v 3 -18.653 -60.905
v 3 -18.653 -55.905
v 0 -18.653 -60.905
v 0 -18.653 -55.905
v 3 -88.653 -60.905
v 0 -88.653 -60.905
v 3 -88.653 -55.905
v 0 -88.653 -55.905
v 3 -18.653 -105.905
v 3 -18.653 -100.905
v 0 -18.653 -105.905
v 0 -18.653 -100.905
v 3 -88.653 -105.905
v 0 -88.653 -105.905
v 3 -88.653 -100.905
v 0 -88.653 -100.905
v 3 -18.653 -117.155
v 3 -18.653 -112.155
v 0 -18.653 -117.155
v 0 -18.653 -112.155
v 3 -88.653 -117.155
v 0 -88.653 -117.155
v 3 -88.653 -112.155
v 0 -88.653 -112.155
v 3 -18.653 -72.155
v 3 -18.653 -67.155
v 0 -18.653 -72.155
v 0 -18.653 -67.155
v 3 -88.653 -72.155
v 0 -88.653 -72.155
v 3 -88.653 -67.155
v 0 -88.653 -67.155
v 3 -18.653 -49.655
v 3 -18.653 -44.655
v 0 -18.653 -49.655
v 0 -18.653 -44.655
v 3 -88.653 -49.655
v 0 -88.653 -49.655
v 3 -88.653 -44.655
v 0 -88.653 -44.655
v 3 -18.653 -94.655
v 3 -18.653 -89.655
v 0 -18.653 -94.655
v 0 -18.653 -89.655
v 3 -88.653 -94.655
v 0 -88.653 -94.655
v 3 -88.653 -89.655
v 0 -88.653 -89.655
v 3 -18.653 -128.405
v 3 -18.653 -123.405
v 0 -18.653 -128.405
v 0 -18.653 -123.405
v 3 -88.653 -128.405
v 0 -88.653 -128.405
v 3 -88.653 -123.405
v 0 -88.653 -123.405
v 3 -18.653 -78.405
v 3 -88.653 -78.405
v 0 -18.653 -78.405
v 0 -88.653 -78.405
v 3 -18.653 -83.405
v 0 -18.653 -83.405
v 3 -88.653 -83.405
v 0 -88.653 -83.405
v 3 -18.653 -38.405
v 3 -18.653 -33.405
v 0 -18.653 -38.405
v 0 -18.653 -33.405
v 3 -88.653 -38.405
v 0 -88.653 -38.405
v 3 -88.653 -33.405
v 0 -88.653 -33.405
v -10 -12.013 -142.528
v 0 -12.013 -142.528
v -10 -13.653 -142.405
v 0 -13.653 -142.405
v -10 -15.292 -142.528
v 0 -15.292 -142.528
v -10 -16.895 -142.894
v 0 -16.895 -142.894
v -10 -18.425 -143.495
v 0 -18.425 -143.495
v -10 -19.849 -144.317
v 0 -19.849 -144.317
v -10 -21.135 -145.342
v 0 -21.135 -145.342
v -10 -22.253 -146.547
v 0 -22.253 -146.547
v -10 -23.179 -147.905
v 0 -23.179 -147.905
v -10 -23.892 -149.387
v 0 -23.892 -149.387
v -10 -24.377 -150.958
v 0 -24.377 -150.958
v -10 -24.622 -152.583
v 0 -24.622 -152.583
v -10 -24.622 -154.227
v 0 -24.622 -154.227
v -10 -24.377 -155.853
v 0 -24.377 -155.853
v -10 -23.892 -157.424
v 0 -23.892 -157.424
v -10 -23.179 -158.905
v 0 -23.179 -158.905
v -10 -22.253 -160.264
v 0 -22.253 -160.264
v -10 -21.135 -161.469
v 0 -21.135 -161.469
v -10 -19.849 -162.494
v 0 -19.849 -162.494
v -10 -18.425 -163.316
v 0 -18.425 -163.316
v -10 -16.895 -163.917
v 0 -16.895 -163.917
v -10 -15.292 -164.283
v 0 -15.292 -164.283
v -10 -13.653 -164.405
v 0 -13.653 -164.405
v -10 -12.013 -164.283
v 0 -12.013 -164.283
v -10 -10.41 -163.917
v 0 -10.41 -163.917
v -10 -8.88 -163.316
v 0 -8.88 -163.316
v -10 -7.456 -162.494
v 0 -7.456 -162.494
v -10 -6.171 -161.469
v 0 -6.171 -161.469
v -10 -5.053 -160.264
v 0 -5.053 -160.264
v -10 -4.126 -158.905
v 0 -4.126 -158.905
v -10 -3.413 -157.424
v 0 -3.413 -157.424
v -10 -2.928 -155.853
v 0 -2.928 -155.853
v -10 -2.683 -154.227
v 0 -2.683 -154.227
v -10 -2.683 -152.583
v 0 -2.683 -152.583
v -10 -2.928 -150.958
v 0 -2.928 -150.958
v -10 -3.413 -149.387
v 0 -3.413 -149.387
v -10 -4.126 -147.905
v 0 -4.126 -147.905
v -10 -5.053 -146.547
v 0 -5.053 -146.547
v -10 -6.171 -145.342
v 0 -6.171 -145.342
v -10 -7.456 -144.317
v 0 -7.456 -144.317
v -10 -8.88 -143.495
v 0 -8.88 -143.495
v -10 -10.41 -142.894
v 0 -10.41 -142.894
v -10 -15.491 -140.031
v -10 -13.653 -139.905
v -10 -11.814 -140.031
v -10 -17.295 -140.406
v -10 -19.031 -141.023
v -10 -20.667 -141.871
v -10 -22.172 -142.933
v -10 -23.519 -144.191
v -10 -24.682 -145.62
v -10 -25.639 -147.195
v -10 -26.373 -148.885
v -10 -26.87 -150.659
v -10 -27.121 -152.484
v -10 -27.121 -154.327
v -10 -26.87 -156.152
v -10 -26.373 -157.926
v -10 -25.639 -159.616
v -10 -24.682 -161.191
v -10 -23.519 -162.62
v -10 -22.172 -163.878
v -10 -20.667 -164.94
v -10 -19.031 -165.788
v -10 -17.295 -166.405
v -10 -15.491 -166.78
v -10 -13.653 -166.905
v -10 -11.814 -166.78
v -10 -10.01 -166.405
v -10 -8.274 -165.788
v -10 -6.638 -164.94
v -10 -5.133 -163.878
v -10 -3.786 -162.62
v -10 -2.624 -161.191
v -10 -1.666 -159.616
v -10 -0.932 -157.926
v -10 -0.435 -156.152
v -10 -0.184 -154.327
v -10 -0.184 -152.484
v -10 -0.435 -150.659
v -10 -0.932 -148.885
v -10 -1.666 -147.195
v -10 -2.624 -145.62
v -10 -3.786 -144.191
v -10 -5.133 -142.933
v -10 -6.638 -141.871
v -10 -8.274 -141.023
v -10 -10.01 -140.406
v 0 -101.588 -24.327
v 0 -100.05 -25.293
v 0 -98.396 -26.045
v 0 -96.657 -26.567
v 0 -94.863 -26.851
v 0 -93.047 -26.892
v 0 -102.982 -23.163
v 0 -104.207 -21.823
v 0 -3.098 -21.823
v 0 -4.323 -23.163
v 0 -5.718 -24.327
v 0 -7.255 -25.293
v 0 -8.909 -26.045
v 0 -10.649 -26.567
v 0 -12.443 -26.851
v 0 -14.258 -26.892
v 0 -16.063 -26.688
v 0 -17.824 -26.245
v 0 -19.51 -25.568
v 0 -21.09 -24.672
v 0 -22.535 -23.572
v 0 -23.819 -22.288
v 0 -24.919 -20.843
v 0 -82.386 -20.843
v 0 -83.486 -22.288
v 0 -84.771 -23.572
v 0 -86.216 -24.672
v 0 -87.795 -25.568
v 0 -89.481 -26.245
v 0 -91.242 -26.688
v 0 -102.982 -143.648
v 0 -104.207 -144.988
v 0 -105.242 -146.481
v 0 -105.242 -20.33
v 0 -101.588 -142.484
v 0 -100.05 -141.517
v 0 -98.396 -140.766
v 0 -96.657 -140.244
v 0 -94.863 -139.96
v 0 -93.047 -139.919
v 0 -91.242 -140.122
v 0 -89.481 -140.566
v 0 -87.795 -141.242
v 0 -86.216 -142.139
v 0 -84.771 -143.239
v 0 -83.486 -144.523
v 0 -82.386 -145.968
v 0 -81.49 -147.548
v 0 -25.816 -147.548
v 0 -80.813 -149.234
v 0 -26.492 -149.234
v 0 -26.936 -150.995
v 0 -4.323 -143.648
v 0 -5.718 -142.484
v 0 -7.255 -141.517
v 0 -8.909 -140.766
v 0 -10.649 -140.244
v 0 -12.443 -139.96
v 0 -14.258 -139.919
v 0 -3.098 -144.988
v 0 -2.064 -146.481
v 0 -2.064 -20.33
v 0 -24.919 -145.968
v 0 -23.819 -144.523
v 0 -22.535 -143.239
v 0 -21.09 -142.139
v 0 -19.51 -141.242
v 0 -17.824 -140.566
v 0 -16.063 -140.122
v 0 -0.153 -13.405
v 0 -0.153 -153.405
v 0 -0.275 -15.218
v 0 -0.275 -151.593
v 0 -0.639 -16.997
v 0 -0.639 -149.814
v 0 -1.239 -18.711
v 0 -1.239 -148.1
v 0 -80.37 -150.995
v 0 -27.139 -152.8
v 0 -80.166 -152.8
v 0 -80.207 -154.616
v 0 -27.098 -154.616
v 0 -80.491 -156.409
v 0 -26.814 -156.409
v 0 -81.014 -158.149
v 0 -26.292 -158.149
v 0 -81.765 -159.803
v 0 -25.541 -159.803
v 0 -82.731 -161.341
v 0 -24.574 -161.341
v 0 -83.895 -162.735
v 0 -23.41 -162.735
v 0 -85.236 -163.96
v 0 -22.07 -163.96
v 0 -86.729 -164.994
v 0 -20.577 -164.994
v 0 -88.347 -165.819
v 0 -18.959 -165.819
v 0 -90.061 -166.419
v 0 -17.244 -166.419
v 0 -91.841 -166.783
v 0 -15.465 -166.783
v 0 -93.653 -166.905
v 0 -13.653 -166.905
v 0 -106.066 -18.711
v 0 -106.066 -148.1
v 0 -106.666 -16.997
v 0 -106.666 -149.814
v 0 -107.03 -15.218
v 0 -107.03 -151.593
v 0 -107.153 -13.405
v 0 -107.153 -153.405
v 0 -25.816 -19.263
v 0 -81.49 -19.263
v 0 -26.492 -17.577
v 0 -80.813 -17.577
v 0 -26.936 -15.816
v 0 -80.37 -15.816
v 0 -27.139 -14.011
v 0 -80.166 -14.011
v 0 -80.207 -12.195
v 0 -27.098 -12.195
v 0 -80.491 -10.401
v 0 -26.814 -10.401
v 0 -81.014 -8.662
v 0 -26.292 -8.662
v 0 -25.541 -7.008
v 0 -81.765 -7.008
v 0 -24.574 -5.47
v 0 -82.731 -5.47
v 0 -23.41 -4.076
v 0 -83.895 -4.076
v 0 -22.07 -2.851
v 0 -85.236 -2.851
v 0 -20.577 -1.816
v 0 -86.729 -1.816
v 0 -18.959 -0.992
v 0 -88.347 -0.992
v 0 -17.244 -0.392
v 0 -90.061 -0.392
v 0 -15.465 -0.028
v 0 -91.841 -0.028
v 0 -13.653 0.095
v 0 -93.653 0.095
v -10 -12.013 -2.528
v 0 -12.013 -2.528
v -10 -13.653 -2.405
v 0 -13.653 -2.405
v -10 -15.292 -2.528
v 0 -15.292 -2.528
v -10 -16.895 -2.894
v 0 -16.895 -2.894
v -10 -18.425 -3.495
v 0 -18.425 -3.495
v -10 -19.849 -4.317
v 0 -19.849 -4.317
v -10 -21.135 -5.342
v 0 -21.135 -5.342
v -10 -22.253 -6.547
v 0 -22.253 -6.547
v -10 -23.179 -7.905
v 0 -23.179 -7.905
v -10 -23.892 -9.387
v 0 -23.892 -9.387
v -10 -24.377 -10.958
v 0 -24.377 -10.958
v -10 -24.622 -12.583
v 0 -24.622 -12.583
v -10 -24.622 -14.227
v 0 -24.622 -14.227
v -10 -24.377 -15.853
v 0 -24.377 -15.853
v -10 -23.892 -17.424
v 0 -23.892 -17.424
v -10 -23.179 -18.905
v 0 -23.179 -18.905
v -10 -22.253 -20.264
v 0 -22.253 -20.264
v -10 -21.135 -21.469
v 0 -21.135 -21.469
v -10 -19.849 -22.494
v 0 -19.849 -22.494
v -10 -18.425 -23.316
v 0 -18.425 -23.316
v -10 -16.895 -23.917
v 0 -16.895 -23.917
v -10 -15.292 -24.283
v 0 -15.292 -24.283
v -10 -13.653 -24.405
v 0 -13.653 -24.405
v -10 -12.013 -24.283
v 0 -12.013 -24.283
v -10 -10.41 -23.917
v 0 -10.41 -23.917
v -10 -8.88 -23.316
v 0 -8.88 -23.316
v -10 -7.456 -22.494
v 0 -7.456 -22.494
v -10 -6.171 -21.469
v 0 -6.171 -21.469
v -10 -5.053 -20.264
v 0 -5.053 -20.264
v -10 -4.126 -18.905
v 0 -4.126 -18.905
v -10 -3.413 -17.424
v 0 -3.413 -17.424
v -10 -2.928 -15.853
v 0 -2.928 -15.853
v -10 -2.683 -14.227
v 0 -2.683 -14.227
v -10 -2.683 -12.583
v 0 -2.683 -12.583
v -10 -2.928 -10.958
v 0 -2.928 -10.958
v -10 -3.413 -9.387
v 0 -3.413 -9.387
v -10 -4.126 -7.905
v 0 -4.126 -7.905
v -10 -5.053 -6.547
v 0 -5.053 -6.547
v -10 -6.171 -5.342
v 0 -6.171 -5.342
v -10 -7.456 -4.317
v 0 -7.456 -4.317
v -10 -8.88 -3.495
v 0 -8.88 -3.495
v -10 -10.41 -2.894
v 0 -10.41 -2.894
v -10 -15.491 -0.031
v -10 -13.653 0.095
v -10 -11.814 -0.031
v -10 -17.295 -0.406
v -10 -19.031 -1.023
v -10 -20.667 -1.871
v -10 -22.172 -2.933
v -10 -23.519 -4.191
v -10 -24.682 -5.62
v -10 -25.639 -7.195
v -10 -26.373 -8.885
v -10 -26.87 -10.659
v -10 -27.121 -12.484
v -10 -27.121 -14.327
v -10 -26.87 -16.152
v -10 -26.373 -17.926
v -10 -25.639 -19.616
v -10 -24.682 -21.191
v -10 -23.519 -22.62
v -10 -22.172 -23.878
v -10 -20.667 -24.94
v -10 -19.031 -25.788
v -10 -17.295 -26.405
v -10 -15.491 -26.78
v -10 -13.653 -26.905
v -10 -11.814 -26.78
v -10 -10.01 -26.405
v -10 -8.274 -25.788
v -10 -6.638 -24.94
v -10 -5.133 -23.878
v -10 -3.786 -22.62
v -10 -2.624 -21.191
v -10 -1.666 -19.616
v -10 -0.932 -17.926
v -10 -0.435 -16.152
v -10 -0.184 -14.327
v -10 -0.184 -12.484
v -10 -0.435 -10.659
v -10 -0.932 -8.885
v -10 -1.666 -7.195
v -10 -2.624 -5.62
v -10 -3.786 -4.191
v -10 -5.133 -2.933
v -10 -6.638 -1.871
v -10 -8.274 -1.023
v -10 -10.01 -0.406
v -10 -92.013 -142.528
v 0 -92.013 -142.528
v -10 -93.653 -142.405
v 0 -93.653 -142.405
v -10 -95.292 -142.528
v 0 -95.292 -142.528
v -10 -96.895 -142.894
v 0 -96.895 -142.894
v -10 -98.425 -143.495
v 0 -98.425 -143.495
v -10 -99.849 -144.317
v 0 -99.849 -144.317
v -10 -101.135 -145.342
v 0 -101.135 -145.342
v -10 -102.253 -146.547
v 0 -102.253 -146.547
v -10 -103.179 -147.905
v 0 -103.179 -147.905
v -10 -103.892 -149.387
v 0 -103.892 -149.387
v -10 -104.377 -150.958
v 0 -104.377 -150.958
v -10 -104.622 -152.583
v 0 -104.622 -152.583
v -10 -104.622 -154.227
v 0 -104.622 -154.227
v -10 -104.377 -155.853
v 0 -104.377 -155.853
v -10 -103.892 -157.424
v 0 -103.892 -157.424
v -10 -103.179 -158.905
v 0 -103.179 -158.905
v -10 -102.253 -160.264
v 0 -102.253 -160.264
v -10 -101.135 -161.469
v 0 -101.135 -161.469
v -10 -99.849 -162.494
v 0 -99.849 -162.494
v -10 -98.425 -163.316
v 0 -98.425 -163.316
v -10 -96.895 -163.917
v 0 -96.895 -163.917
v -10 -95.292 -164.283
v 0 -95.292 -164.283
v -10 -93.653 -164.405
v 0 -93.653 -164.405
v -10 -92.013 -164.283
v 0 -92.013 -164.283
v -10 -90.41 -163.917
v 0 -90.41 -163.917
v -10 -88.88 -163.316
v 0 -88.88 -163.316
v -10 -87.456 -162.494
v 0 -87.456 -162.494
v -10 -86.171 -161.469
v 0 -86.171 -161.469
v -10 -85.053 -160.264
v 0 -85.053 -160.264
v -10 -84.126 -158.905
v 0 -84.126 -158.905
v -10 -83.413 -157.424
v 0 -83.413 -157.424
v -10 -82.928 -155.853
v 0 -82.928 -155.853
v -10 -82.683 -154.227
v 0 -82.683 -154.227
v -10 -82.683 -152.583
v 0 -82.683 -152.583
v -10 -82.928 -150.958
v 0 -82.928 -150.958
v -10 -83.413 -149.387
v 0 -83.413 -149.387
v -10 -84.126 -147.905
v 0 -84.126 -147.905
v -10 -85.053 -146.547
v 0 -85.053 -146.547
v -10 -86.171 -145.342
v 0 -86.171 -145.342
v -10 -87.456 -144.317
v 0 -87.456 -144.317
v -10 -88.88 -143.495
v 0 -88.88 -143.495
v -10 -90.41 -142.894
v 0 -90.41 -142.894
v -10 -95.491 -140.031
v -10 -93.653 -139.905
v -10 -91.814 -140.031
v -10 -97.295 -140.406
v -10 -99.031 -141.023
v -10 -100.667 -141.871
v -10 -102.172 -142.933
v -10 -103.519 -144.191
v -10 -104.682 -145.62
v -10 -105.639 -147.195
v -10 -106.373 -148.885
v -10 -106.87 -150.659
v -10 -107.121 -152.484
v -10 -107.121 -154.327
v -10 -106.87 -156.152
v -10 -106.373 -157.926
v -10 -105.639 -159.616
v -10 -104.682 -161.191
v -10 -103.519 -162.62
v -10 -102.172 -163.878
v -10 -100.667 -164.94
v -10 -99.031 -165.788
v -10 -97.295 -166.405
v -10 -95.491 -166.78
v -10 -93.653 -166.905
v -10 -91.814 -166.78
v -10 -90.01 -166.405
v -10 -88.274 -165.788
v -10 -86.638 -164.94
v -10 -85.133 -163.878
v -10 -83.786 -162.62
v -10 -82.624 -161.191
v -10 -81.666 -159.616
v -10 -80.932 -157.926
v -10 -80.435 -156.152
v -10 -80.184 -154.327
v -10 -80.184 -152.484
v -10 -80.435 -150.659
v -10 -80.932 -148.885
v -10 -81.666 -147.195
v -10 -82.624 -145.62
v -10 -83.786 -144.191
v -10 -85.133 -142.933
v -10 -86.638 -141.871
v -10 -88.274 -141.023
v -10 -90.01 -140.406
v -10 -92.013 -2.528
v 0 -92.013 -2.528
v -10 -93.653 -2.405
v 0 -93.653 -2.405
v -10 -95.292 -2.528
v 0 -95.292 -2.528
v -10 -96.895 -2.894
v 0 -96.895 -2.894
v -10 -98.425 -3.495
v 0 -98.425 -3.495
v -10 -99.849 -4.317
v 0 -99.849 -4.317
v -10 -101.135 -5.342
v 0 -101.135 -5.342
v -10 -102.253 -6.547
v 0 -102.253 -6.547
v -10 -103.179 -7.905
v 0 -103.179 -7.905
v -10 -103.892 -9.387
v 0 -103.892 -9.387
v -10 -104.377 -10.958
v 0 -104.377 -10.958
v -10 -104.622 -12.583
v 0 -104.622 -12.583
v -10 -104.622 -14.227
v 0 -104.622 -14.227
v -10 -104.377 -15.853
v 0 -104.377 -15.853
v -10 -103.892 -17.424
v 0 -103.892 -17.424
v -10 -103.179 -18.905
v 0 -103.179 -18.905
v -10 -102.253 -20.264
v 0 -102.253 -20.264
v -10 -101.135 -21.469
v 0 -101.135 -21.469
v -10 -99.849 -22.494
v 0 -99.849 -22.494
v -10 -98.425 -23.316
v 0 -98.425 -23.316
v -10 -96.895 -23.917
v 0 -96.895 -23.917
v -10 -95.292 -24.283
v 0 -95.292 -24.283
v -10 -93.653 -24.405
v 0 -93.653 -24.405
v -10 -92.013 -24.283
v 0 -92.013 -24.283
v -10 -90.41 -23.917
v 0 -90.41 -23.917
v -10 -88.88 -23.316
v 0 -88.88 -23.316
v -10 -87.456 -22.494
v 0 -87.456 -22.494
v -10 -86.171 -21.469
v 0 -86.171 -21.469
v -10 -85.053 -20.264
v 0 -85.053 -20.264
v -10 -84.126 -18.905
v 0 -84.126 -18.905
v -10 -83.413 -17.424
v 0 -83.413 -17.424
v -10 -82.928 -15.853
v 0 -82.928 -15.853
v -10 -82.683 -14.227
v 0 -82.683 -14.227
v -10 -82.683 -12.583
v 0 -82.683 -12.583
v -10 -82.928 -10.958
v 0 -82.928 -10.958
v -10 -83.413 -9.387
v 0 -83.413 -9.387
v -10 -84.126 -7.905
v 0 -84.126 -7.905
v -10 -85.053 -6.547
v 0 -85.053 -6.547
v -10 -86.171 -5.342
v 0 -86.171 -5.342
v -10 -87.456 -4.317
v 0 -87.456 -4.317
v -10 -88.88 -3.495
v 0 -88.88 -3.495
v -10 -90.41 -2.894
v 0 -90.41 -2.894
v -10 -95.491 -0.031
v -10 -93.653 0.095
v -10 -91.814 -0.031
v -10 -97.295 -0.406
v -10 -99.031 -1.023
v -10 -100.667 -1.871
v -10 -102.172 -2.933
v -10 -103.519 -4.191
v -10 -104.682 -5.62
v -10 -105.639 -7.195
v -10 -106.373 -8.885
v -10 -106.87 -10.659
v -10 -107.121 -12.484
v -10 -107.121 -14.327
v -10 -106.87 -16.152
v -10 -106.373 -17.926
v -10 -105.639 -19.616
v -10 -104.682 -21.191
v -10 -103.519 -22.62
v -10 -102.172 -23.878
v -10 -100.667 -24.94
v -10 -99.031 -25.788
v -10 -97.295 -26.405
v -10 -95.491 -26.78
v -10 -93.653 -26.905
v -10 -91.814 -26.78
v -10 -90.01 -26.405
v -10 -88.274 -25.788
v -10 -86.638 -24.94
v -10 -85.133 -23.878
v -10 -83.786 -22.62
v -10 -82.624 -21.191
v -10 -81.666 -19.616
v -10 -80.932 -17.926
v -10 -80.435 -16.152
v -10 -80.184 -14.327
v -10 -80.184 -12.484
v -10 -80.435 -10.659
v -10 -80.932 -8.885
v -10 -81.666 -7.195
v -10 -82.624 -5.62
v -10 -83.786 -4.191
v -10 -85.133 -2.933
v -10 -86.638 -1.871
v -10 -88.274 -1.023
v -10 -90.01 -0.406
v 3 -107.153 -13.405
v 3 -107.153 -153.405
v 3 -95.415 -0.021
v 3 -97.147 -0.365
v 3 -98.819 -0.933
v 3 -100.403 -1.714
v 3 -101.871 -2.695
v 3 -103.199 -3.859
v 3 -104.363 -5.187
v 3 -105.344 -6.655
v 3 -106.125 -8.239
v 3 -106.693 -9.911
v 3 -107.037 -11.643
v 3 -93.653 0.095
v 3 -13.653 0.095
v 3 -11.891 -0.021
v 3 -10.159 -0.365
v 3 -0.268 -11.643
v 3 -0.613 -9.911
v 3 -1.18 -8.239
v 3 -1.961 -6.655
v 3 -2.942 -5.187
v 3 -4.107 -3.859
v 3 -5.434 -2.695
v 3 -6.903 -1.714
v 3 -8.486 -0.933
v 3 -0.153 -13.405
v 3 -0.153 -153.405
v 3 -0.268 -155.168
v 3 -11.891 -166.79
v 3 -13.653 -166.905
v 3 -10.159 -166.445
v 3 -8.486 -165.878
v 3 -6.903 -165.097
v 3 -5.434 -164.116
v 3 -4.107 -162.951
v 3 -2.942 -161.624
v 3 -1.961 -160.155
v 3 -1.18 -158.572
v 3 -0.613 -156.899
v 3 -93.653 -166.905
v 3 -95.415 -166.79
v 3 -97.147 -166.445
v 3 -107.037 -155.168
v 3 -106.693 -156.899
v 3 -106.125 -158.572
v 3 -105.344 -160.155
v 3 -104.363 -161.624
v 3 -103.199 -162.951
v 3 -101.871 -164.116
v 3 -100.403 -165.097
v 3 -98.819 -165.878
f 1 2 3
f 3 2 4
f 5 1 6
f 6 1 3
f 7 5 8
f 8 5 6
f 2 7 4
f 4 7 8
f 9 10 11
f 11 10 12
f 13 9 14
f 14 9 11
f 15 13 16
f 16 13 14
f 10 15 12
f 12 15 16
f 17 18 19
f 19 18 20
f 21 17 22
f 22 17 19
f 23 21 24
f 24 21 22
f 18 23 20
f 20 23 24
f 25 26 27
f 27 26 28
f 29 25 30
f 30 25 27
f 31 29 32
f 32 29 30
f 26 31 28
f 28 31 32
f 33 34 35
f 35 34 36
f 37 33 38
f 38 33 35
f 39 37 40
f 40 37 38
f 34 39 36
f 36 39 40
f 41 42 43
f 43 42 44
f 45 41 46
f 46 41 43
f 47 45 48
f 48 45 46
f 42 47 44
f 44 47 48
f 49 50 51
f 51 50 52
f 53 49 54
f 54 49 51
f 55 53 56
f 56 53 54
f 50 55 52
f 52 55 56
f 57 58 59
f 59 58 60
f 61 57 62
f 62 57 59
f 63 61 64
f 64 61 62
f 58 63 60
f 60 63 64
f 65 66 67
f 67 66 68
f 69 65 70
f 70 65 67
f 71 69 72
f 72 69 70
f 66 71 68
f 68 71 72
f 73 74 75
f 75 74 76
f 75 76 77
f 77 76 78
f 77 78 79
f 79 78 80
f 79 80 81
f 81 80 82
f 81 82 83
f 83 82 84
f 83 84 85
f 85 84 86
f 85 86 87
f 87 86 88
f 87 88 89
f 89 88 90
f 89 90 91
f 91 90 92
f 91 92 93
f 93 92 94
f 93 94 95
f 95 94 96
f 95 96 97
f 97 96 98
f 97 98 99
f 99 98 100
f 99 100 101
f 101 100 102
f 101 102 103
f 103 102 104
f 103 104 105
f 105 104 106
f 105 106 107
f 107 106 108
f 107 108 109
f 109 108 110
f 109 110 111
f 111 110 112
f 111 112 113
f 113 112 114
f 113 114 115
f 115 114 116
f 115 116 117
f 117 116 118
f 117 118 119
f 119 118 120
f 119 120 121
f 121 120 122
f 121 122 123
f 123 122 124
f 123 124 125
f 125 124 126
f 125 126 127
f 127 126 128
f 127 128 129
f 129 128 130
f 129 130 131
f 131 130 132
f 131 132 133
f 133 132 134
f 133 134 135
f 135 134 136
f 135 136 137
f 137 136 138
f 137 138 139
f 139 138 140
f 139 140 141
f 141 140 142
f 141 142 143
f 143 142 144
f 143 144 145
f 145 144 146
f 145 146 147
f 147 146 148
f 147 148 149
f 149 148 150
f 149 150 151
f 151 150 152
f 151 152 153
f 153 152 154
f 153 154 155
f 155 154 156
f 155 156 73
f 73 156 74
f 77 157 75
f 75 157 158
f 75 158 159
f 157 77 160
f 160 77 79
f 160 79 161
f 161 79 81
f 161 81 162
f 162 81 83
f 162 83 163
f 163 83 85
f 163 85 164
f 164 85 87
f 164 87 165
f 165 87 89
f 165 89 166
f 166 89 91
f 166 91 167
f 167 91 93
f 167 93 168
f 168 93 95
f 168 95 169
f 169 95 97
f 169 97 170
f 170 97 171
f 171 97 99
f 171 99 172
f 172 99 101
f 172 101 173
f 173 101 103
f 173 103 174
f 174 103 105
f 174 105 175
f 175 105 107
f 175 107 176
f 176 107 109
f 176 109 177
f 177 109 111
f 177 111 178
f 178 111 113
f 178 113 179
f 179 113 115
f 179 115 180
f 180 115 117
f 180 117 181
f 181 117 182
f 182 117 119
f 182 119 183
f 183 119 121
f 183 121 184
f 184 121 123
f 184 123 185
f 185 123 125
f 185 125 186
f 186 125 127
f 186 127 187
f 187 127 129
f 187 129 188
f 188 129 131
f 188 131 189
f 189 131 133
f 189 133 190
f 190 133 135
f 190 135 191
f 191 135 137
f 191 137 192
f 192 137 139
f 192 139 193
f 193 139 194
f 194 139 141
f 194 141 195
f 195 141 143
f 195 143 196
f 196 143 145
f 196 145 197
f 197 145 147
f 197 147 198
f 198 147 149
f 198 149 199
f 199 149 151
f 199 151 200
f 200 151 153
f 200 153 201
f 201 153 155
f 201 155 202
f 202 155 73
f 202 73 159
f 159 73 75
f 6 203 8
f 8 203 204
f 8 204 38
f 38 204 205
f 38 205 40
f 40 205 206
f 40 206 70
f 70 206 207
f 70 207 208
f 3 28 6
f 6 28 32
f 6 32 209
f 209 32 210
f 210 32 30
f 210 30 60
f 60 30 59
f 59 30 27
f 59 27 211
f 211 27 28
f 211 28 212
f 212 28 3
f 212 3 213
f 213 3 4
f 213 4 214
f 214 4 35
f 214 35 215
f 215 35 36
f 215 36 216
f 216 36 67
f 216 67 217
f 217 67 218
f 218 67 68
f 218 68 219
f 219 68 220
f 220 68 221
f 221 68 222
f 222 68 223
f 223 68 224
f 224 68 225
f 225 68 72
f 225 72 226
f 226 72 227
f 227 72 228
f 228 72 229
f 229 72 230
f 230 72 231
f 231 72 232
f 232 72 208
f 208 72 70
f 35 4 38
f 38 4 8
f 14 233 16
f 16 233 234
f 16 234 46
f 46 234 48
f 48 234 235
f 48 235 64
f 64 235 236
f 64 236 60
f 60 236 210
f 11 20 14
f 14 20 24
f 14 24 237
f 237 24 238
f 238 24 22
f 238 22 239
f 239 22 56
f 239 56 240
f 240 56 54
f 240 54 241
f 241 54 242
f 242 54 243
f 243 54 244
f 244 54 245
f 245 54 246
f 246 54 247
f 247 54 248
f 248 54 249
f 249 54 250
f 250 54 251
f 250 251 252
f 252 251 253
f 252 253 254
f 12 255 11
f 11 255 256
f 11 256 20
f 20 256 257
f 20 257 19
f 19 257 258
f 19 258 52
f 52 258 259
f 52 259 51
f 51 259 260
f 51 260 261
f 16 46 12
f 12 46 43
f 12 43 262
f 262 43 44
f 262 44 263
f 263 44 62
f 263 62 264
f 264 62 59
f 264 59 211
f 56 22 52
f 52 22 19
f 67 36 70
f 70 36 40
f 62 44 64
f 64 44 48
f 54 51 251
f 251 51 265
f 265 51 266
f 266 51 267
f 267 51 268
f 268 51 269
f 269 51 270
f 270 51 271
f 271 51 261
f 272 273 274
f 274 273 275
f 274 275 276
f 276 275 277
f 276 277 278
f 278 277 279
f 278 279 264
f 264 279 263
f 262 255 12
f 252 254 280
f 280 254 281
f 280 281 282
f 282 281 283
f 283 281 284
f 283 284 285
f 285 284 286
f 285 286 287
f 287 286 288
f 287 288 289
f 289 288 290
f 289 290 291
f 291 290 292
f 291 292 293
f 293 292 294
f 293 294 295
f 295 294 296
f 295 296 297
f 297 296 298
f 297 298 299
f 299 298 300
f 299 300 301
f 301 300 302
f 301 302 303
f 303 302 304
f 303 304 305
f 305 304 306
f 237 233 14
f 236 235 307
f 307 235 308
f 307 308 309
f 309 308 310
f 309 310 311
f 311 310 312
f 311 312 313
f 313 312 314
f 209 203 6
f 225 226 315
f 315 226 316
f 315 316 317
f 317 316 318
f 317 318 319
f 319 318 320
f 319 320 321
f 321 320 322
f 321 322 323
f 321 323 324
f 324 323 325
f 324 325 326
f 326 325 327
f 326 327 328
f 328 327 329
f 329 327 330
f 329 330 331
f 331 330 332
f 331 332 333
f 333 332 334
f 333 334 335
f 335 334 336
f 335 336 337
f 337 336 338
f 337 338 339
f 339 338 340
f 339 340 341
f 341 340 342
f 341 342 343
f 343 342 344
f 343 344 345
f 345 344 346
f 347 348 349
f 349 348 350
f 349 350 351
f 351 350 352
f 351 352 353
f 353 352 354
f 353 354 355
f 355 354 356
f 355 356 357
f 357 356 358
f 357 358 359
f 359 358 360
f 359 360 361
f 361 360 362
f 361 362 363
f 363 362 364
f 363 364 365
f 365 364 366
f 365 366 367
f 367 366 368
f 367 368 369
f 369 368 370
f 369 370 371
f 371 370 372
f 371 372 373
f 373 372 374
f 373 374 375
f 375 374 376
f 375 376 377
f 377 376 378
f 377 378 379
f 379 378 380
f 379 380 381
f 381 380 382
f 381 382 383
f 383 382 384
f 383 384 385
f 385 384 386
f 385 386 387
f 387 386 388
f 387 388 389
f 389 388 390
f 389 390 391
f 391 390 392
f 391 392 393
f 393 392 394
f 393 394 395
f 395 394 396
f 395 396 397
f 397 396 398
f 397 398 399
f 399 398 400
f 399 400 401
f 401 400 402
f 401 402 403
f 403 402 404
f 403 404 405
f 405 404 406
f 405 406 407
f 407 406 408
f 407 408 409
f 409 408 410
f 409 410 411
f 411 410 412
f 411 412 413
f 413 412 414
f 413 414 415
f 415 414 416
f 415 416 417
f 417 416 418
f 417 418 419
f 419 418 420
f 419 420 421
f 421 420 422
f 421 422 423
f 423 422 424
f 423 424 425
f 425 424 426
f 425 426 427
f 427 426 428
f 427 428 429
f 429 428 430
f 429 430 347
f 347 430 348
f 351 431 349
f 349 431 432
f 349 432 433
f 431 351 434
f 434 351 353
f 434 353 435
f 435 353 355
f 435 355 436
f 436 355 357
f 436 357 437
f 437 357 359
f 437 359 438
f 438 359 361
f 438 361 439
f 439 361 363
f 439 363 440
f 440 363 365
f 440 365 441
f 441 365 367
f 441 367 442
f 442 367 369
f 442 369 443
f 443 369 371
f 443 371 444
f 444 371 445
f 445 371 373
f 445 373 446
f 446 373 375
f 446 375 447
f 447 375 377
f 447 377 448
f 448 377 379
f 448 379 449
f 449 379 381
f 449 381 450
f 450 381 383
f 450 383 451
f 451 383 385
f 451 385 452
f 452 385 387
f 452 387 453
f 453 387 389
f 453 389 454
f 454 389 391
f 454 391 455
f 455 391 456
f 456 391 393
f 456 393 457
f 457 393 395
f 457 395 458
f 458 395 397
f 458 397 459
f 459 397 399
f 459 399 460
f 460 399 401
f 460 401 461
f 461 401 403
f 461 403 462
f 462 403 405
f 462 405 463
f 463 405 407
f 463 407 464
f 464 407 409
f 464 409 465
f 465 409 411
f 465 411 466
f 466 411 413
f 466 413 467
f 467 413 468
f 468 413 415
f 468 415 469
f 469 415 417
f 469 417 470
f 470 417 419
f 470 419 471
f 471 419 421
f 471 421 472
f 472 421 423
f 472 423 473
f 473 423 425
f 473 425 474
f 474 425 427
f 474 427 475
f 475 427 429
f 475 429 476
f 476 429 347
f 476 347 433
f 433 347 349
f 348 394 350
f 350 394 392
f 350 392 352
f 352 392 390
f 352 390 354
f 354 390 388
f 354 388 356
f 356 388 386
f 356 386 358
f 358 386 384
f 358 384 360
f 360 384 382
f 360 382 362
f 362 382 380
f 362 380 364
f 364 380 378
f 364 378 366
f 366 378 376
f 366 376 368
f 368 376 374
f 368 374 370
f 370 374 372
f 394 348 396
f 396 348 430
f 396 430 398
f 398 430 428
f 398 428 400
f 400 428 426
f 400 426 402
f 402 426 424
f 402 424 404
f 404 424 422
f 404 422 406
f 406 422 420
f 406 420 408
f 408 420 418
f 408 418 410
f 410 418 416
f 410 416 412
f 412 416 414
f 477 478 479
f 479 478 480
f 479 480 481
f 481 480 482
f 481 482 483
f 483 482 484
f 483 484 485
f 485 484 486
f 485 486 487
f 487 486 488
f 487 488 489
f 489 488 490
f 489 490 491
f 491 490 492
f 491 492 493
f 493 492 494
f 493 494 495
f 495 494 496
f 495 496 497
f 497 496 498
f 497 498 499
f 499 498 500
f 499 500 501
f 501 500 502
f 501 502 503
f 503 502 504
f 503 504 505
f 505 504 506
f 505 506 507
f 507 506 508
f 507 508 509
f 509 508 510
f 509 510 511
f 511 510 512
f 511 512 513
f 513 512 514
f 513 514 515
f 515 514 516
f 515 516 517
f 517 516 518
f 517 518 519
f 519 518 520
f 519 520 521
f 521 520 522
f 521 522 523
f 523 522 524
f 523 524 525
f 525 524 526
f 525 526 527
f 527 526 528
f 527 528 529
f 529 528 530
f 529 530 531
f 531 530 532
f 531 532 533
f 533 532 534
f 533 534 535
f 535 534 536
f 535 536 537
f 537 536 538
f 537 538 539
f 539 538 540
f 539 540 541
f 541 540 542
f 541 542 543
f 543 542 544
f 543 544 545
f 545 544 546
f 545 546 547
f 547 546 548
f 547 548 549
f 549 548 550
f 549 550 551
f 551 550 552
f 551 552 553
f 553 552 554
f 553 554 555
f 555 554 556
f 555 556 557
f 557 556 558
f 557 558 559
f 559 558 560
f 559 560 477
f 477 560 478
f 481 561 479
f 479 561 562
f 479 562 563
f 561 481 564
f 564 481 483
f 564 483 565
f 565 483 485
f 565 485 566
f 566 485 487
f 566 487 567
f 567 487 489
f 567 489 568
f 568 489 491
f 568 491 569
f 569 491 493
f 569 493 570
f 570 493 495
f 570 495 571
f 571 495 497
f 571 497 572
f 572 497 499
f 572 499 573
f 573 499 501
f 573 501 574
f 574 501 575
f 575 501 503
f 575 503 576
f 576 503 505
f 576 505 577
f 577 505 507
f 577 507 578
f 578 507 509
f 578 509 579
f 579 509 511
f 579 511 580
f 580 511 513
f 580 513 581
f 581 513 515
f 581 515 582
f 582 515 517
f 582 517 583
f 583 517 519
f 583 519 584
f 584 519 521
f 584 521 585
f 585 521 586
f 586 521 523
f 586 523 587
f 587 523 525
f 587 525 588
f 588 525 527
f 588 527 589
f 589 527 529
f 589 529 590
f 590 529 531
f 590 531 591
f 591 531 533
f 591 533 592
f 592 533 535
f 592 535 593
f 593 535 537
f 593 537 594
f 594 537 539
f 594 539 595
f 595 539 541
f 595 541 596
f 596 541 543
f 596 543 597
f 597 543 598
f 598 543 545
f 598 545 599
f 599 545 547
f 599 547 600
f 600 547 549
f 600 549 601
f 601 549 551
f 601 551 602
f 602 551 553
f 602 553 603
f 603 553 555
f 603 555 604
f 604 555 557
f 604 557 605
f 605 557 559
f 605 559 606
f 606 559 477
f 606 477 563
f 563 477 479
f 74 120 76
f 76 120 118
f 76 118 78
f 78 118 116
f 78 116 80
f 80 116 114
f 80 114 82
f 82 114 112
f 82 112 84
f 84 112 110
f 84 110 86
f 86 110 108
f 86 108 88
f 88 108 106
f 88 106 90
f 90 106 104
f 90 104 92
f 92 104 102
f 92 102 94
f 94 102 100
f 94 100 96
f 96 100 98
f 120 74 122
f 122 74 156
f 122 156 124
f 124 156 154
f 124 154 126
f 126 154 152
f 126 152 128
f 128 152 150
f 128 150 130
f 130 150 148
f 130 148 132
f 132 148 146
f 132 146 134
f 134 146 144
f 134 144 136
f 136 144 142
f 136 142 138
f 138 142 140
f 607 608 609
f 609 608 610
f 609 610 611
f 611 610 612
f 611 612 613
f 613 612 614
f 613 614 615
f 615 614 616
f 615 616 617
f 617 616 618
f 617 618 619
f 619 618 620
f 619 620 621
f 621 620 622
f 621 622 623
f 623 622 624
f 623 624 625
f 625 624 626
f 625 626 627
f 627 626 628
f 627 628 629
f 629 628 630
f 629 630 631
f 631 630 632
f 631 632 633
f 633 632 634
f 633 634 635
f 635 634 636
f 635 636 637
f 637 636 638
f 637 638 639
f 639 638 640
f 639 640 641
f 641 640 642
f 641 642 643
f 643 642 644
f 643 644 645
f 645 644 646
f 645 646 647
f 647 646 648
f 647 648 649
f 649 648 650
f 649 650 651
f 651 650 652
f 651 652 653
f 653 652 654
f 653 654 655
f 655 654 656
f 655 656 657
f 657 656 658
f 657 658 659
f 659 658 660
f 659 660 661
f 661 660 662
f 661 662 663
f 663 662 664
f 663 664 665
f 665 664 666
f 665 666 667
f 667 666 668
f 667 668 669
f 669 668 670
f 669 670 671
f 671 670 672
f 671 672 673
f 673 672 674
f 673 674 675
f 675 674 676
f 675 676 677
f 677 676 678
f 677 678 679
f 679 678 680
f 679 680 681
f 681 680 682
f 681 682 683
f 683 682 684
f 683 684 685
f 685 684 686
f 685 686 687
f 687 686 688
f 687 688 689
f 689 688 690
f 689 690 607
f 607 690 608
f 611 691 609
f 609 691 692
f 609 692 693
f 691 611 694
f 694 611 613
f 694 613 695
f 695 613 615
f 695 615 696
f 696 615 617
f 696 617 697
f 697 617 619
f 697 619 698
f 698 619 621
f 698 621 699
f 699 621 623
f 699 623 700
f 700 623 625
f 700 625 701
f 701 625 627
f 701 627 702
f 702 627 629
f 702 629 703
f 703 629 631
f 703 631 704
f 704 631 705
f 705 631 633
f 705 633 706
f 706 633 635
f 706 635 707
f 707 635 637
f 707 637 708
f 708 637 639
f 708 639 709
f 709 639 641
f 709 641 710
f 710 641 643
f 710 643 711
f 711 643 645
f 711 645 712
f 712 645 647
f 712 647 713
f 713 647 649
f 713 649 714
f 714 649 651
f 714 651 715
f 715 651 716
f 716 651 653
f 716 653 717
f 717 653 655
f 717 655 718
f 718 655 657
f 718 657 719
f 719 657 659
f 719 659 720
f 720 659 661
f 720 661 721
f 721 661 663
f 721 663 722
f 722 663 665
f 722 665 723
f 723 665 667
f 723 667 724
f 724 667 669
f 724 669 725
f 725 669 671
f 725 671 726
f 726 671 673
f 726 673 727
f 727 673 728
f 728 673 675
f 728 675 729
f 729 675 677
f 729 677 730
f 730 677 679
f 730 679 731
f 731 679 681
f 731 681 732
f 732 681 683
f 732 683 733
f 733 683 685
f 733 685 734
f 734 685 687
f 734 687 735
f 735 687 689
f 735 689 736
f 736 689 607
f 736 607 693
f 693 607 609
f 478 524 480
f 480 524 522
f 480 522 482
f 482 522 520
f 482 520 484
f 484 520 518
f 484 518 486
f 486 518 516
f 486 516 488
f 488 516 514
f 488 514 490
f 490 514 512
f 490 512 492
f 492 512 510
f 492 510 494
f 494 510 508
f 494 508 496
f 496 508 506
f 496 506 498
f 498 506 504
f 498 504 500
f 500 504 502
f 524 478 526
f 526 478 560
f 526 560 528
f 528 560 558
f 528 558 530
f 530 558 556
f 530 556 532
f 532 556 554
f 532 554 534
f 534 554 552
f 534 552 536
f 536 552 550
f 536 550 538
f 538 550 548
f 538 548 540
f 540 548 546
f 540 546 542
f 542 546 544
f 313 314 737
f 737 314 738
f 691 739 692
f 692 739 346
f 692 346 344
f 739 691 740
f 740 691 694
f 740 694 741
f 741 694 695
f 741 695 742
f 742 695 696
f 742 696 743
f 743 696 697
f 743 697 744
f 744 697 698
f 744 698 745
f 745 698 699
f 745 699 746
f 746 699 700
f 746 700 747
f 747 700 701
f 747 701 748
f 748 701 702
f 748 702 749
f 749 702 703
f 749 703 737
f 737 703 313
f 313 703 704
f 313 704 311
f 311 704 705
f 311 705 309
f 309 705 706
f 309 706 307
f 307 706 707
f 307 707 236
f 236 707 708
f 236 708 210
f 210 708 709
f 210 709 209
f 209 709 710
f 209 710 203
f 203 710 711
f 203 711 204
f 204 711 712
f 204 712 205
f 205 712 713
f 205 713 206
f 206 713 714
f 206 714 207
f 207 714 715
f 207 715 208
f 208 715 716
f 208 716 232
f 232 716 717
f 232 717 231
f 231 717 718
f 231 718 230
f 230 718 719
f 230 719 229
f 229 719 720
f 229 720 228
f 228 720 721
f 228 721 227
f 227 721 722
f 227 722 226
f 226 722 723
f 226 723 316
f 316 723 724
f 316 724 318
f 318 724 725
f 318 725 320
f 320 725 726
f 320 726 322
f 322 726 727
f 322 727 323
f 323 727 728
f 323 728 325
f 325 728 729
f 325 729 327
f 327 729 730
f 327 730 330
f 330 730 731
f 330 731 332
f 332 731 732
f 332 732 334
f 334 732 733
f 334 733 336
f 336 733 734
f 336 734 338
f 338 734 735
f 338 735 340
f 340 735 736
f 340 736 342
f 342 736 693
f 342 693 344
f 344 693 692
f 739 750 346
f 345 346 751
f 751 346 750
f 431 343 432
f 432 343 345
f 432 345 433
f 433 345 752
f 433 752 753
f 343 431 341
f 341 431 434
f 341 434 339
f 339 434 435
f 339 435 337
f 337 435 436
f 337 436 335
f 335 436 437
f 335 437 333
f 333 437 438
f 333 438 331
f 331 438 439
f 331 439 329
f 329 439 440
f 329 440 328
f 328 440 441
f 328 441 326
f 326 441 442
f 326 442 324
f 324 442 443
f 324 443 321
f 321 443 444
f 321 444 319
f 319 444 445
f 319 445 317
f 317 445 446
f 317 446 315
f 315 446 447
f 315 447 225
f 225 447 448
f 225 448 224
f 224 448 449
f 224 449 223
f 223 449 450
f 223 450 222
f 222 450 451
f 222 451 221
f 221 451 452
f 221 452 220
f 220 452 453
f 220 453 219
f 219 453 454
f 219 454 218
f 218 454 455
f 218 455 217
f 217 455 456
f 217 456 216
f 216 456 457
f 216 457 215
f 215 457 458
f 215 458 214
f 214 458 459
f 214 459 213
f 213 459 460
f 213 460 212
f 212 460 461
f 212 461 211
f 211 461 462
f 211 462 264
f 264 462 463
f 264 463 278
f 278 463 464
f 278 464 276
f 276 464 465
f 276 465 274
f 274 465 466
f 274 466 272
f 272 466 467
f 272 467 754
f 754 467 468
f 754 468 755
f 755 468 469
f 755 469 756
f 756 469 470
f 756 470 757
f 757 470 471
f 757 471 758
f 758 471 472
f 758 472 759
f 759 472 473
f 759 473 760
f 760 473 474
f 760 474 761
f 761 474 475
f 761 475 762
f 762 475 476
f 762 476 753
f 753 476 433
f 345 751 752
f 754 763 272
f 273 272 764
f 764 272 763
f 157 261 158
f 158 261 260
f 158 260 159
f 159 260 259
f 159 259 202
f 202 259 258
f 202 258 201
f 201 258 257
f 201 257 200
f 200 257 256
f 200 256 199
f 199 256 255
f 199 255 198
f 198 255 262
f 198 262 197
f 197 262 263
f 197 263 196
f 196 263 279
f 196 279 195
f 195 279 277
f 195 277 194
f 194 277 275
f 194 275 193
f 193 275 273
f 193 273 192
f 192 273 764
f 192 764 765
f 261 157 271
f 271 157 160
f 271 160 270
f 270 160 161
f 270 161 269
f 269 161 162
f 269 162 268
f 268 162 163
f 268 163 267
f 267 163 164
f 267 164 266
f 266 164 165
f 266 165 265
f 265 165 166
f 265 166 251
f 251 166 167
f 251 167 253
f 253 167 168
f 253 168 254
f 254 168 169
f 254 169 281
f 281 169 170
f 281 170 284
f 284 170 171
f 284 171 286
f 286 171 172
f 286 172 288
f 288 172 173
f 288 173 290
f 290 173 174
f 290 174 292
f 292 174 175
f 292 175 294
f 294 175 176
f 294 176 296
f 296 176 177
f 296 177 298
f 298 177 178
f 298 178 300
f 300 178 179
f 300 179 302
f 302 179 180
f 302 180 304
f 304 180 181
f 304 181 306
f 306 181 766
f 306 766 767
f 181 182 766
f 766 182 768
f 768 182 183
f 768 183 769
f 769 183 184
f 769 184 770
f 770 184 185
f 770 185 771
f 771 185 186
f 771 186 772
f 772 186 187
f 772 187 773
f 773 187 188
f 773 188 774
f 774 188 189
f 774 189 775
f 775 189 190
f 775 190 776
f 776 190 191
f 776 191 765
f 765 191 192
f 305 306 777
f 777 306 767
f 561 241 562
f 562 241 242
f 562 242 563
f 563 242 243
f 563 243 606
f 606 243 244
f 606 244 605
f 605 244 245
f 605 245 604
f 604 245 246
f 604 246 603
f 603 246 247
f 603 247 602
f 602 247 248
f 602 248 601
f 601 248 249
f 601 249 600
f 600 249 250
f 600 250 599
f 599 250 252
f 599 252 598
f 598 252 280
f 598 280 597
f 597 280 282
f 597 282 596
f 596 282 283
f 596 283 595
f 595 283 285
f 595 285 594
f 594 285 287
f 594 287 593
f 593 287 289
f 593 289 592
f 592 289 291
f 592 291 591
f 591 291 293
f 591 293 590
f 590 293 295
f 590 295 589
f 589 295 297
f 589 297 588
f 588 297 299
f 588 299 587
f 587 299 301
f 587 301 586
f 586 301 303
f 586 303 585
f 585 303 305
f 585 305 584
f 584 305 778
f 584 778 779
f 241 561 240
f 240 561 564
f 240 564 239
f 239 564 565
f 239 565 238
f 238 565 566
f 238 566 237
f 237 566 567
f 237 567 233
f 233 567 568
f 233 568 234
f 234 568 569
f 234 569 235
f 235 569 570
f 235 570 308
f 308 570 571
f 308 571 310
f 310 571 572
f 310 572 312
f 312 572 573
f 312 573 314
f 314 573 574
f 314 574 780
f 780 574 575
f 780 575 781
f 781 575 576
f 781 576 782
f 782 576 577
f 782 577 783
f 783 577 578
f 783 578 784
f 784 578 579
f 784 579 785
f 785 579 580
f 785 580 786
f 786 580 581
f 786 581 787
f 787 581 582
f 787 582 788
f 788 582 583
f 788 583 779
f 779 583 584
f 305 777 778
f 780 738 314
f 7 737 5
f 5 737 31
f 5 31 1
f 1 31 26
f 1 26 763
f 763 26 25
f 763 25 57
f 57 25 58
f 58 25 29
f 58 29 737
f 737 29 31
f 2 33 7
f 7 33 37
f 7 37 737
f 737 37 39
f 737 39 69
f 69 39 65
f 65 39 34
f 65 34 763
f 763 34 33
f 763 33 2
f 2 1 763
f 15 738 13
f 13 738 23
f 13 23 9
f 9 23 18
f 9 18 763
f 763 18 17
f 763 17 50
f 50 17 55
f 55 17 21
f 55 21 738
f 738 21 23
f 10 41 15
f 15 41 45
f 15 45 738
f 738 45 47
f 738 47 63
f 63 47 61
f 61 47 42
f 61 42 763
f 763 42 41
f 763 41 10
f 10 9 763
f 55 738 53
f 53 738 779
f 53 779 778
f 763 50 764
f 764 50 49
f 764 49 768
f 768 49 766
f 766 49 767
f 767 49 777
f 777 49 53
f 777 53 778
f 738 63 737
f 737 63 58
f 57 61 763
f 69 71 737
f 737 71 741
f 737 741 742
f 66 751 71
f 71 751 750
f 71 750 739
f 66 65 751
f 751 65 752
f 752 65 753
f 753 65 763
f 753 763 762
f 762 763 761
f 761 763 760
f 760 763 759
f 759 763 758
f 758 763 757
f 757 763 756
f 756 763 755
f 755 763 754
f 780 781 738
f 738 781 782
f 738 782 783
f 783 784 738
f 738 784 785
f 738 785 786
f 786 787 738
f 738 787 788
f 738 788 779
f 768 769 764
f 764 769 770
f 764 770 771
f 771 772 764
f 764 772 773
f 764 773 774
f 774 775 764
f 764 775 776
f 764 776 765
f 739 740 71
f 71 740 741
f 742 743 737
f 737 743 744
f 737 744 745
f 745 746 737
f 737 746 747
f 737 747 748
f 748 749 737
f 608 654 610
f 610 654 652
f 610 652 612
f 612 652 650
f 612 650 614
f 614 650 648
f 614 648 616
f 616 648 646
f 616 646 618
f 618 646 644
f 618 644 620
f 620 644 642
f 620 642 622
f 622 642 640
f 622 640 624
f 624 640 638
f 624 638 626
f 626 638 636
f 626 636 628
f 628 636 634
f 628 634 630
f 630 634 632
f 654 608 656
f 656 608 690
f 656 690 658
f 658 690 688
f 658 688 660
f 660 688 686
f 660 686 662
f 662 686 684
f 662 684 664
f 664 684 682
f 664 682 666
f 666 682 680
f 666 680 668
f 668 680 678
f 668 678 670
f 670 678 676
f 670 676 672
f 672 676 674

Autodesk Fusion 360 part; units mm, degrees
sketch "Esquisse1" plane through (0, 0, 0) normal (1, 0, 0) x (0, 0, -1)
  line L0 (-0.0946, -0.1527) -> (166.9054, -0.1527)
  line L1 (166.9054, -0.1527) -> (166.9054, -107.1527)
  line L2 (166.9054, -107.1527) -> (-0.0946, -107.1527)
  line L3 (-0.0946, -107.1527) -> (-0.0946, -0.1527)
  circle A0 centre (153.4054, -13.6527) radius 11
  circle A1 centre (13.4054, -13.6527) radius 11
  circle A2 centre (13.4054, -93.6527) radius 11
  circle A3 centre (153.4054, -93.6527) radius 11
  circle A4 centre (153.4054, -13.6527) radius 13.5
  circle A5 centre (153.4054, -93.6527) radius 13.5
  circle A6 centre (13.4054, -93.6527) radius 13.5
  circle A7 centre (13.4054, -13.6527) radius 13.5
  dimension "d10" = 107
  dimension "d11" = 167
  dimension "d12" = 22
  dimension "d13" = 13.5
  dimension "d14" = 13.5
  dimension "d15" = 22
  dimension "d16" = 22
  dimension "d17" = 22
  dimension "d18" = 13.5
  dimension "d19" = 13.5
  dimension "d20" = 13.5
  dimension "d21" = 13.5
  dimension "d22" = 13.5
  dimension "d23" = 13.5
  dimension "d24" = 27
  dimension "d25" = 27
  dimension "d26" = 27
  dimension "d27" = 27
extrude "Extrusion1" add sketch "Esquisse1" along normal blind 3 contours L0 L1 L2 L3 A4 A5 A6 A7 | A7 | A4 | A6 | A5 | A0 | A1 | A2 | A3
extrude "Extrusion2" add sketch "Esquisse1" against normal blind 10 contours A7 | A4 | A6 | A5
sketch "Esquisse3" plane through (0, 0, 0) normal (-1, 0, 0) x (0, 0, 1)
  arc A0 (-166.9054, -13.6527) -> (-153.4054, -0.1527) centre (-153.4054, -13.6527) ccw
  line L0 (-166.9054, -13.6527) -> (-166.9054, -93.6527)
  arc A1 (-153.4054, -107.1527) -> (-166.9054, -93.6527) centre (-153.4054, -93.6527) ccw
  line L1 (-153.4054, -107.1527) -> (-13.4054, -107.1527)
  arc A2 (0.0946, -93.6527) -> (-13.4054, -107.1527) centre (-13.4054, -93.6527) ccw
  line L2 (0.0946, -93.6527) -> (0.0946, -13.6527)
  arc A3 (-13.4054, -0.1527) -> (0.0946, -13.6527) centre (-13.4054, -13.6527) ccw
  line L3 (-13.4054, -0.1527) -> (-153.4054, -0.1527)
  line L4 (-78.4054, -88.6527) -> (-83.4054, -88.6527)
  line L5 (-83.4054, -88.6527) -> (-83.4054, -18.6527)
  line L6 (-83.4054, -18.6527) -> (-78.4054, -18.6527)
  line L7 (-78.4054, -18.6527) -> (-78.4054, -88.6527)
  line L8 (-72.1554, -88.6527) -> (-72.1554, -18.6527)
  line L9 (-67.1554, -88.6527) -> (-72.1554, -88.6527)
  line L10 (-67.1554, -18.6527) -> (-67.1554, -88.6527)
  line L11 (-72.1554, -18.6527) -> (-67.1554, -18.6527)
  line L12 (-60.9054, -88.6527) -> (-60.9054, -18.6527)
  line L13 (-55.9054, -88.6527) -> (-60.9054, -88.6527)
  line L14 (-55.9054, -18.6527) -> (-55.9054, -88.6527)
  line L15 (-60.9054, -18.6527) -> (-55.9054, -18.6527)
  line L16 (-49.6554, -88.6527) -> (-49.6554, -18.6527)
  line L17 (-44.6554, -88.6527) -> (-49.6554, -88.6527)
  line L18 (-44.6554, -18.6527) -> (-44.6554, -88.6527)
  line L19 (-49.6554, -18.6527) -> (-44.6554, -18.6527)
  line L20 (-38.4054, -88.6527) -> (-38.4054, -18.6527)
  line L21 (-33.4054, -88.6527) -> (-38.4054, -88.6527)
  line L22 (-33.4054, -18.6527) -> (-33.4054, -88.6527)
  line L23 (-38.4054, -18.6527) -> (-33.4054, -18.6527)
  line L24 (-94.6554, -88.6527) -> (-94.6554, -18.6527)
  line L25 (-89.6554, -18.6527) -> (-89.6554, -88.6527)
  line L26 (-89.6554, -88.6527) -> (-94.6554, -88.6527)
  line L27 (-94.6554, -18.6527) -> (-89.6554, -18.6527)
  line L28 (-105.9054, -88.6527) -> (-105.9054, -18.6527)
  line L29 (-100.9054, -18.6527) -> (-100.9054, -88.6527)
  line L30 (-100.9054, -88.6527) -> (-105.9054, -88.6527)
  line L31 (-105.9054, -18.6527) -> (-100.9054, -18.6527)
  line L32 (-117.1554, -88.6527) -> (-117.1554, -18.6527)
  line L33 (-112.1554, -18.6527) -> (-112.1554, -88.6527)
  line L34 (-112.1554, -88.6527) -> (-117.1554, -88.6527)
  line L35 (-117.1554, -18.6527) -> (-112.1554, -18.6527)
  line L36 (-128.4054, -88.6527) -> (-128.4054, -18.6527)
  line L37 (-123.4054, -18.6527) -> (-123.4054, -88.6527)
  line L38 (-123.4054, -88.6527) -> (-128.4054, -88.6527)
  line L39 (-128.4054, -18.6527) -> (-123.4054, -18.6527)
  dimension "d35" = 5
  dimension "d36" = 70
  dimension "d37" = 83.5
  dimension "d38" = 18.5
  dimension "d41" = 45
  dimension "d42" = 0
  dimension "d45" = -45
  dimension "d46" = 0
extrude "Extrusion3" cut sketch "Esquisse3" against normal blind 25 contours L4 L5 L6 L7 | L8 L9 L10 L11 | L12 L13 L14 L15 | L16 L17 L18 L19 | L20 L21 L22 L23 | L24 L25 L26 L27 | L28 L29 L30 L31 | L32 L33 L34 L35 | L36 L37 L38 L39
equation "diaPiedBois = 22 mm"
equation "longEntrePied = 140 mm"
equation "largEntrePied = 80 mm"
equation "d10 = largEntrePied + diaExtPiedBois"
equation "d11 = longEntrePied + diaExtPiedBois"
equation "d12 = diaPiedBois"
equation "d13 = diaExtPiedBois / 2"
equation "d14 = diaExtPiedBois / 2"
equation "d15 = diaPiedBois"
equation "d16 = diaPiedBois"
equation "d17 = diaPiedBois"
equation "d18 = diaExtPiedBois / 2"
equation "d19 = diaExtPiedBois / 2"
equation "d20 = diaExtPiedBois / 2"
equation "d21 = diaExtPiedBois / 2"
equation "d22 = diaExtPiedBois / 2"
equation "d23 = diaExtPiedBois / 2"
equation "d24 = diaPiedBois + 5 mm"
equation "d25 = diaPiedBois + 5 mm"
equation "d26 = diaPiedBois + 5 mm"
equation "d27 = diaPiedBois + 5 mm"
equation "diaExtPiedBois = diaPiedBois + 5 mm"
equation "d29 = epPlaqueHaut"
equation "d31 = -hautSupportPiedBois"
equation "epPlaqueHaut = 3 mm"
equation "hautSupportPiedBois = 10 mm"
equation "d37 = ( longEntrePied + diaExtPiedBois ) / 2"
equation "d38 = ( largEntrePied + diaExtPiedBois ) / 2 - ( 70 / 2 ) * 1 mm"
